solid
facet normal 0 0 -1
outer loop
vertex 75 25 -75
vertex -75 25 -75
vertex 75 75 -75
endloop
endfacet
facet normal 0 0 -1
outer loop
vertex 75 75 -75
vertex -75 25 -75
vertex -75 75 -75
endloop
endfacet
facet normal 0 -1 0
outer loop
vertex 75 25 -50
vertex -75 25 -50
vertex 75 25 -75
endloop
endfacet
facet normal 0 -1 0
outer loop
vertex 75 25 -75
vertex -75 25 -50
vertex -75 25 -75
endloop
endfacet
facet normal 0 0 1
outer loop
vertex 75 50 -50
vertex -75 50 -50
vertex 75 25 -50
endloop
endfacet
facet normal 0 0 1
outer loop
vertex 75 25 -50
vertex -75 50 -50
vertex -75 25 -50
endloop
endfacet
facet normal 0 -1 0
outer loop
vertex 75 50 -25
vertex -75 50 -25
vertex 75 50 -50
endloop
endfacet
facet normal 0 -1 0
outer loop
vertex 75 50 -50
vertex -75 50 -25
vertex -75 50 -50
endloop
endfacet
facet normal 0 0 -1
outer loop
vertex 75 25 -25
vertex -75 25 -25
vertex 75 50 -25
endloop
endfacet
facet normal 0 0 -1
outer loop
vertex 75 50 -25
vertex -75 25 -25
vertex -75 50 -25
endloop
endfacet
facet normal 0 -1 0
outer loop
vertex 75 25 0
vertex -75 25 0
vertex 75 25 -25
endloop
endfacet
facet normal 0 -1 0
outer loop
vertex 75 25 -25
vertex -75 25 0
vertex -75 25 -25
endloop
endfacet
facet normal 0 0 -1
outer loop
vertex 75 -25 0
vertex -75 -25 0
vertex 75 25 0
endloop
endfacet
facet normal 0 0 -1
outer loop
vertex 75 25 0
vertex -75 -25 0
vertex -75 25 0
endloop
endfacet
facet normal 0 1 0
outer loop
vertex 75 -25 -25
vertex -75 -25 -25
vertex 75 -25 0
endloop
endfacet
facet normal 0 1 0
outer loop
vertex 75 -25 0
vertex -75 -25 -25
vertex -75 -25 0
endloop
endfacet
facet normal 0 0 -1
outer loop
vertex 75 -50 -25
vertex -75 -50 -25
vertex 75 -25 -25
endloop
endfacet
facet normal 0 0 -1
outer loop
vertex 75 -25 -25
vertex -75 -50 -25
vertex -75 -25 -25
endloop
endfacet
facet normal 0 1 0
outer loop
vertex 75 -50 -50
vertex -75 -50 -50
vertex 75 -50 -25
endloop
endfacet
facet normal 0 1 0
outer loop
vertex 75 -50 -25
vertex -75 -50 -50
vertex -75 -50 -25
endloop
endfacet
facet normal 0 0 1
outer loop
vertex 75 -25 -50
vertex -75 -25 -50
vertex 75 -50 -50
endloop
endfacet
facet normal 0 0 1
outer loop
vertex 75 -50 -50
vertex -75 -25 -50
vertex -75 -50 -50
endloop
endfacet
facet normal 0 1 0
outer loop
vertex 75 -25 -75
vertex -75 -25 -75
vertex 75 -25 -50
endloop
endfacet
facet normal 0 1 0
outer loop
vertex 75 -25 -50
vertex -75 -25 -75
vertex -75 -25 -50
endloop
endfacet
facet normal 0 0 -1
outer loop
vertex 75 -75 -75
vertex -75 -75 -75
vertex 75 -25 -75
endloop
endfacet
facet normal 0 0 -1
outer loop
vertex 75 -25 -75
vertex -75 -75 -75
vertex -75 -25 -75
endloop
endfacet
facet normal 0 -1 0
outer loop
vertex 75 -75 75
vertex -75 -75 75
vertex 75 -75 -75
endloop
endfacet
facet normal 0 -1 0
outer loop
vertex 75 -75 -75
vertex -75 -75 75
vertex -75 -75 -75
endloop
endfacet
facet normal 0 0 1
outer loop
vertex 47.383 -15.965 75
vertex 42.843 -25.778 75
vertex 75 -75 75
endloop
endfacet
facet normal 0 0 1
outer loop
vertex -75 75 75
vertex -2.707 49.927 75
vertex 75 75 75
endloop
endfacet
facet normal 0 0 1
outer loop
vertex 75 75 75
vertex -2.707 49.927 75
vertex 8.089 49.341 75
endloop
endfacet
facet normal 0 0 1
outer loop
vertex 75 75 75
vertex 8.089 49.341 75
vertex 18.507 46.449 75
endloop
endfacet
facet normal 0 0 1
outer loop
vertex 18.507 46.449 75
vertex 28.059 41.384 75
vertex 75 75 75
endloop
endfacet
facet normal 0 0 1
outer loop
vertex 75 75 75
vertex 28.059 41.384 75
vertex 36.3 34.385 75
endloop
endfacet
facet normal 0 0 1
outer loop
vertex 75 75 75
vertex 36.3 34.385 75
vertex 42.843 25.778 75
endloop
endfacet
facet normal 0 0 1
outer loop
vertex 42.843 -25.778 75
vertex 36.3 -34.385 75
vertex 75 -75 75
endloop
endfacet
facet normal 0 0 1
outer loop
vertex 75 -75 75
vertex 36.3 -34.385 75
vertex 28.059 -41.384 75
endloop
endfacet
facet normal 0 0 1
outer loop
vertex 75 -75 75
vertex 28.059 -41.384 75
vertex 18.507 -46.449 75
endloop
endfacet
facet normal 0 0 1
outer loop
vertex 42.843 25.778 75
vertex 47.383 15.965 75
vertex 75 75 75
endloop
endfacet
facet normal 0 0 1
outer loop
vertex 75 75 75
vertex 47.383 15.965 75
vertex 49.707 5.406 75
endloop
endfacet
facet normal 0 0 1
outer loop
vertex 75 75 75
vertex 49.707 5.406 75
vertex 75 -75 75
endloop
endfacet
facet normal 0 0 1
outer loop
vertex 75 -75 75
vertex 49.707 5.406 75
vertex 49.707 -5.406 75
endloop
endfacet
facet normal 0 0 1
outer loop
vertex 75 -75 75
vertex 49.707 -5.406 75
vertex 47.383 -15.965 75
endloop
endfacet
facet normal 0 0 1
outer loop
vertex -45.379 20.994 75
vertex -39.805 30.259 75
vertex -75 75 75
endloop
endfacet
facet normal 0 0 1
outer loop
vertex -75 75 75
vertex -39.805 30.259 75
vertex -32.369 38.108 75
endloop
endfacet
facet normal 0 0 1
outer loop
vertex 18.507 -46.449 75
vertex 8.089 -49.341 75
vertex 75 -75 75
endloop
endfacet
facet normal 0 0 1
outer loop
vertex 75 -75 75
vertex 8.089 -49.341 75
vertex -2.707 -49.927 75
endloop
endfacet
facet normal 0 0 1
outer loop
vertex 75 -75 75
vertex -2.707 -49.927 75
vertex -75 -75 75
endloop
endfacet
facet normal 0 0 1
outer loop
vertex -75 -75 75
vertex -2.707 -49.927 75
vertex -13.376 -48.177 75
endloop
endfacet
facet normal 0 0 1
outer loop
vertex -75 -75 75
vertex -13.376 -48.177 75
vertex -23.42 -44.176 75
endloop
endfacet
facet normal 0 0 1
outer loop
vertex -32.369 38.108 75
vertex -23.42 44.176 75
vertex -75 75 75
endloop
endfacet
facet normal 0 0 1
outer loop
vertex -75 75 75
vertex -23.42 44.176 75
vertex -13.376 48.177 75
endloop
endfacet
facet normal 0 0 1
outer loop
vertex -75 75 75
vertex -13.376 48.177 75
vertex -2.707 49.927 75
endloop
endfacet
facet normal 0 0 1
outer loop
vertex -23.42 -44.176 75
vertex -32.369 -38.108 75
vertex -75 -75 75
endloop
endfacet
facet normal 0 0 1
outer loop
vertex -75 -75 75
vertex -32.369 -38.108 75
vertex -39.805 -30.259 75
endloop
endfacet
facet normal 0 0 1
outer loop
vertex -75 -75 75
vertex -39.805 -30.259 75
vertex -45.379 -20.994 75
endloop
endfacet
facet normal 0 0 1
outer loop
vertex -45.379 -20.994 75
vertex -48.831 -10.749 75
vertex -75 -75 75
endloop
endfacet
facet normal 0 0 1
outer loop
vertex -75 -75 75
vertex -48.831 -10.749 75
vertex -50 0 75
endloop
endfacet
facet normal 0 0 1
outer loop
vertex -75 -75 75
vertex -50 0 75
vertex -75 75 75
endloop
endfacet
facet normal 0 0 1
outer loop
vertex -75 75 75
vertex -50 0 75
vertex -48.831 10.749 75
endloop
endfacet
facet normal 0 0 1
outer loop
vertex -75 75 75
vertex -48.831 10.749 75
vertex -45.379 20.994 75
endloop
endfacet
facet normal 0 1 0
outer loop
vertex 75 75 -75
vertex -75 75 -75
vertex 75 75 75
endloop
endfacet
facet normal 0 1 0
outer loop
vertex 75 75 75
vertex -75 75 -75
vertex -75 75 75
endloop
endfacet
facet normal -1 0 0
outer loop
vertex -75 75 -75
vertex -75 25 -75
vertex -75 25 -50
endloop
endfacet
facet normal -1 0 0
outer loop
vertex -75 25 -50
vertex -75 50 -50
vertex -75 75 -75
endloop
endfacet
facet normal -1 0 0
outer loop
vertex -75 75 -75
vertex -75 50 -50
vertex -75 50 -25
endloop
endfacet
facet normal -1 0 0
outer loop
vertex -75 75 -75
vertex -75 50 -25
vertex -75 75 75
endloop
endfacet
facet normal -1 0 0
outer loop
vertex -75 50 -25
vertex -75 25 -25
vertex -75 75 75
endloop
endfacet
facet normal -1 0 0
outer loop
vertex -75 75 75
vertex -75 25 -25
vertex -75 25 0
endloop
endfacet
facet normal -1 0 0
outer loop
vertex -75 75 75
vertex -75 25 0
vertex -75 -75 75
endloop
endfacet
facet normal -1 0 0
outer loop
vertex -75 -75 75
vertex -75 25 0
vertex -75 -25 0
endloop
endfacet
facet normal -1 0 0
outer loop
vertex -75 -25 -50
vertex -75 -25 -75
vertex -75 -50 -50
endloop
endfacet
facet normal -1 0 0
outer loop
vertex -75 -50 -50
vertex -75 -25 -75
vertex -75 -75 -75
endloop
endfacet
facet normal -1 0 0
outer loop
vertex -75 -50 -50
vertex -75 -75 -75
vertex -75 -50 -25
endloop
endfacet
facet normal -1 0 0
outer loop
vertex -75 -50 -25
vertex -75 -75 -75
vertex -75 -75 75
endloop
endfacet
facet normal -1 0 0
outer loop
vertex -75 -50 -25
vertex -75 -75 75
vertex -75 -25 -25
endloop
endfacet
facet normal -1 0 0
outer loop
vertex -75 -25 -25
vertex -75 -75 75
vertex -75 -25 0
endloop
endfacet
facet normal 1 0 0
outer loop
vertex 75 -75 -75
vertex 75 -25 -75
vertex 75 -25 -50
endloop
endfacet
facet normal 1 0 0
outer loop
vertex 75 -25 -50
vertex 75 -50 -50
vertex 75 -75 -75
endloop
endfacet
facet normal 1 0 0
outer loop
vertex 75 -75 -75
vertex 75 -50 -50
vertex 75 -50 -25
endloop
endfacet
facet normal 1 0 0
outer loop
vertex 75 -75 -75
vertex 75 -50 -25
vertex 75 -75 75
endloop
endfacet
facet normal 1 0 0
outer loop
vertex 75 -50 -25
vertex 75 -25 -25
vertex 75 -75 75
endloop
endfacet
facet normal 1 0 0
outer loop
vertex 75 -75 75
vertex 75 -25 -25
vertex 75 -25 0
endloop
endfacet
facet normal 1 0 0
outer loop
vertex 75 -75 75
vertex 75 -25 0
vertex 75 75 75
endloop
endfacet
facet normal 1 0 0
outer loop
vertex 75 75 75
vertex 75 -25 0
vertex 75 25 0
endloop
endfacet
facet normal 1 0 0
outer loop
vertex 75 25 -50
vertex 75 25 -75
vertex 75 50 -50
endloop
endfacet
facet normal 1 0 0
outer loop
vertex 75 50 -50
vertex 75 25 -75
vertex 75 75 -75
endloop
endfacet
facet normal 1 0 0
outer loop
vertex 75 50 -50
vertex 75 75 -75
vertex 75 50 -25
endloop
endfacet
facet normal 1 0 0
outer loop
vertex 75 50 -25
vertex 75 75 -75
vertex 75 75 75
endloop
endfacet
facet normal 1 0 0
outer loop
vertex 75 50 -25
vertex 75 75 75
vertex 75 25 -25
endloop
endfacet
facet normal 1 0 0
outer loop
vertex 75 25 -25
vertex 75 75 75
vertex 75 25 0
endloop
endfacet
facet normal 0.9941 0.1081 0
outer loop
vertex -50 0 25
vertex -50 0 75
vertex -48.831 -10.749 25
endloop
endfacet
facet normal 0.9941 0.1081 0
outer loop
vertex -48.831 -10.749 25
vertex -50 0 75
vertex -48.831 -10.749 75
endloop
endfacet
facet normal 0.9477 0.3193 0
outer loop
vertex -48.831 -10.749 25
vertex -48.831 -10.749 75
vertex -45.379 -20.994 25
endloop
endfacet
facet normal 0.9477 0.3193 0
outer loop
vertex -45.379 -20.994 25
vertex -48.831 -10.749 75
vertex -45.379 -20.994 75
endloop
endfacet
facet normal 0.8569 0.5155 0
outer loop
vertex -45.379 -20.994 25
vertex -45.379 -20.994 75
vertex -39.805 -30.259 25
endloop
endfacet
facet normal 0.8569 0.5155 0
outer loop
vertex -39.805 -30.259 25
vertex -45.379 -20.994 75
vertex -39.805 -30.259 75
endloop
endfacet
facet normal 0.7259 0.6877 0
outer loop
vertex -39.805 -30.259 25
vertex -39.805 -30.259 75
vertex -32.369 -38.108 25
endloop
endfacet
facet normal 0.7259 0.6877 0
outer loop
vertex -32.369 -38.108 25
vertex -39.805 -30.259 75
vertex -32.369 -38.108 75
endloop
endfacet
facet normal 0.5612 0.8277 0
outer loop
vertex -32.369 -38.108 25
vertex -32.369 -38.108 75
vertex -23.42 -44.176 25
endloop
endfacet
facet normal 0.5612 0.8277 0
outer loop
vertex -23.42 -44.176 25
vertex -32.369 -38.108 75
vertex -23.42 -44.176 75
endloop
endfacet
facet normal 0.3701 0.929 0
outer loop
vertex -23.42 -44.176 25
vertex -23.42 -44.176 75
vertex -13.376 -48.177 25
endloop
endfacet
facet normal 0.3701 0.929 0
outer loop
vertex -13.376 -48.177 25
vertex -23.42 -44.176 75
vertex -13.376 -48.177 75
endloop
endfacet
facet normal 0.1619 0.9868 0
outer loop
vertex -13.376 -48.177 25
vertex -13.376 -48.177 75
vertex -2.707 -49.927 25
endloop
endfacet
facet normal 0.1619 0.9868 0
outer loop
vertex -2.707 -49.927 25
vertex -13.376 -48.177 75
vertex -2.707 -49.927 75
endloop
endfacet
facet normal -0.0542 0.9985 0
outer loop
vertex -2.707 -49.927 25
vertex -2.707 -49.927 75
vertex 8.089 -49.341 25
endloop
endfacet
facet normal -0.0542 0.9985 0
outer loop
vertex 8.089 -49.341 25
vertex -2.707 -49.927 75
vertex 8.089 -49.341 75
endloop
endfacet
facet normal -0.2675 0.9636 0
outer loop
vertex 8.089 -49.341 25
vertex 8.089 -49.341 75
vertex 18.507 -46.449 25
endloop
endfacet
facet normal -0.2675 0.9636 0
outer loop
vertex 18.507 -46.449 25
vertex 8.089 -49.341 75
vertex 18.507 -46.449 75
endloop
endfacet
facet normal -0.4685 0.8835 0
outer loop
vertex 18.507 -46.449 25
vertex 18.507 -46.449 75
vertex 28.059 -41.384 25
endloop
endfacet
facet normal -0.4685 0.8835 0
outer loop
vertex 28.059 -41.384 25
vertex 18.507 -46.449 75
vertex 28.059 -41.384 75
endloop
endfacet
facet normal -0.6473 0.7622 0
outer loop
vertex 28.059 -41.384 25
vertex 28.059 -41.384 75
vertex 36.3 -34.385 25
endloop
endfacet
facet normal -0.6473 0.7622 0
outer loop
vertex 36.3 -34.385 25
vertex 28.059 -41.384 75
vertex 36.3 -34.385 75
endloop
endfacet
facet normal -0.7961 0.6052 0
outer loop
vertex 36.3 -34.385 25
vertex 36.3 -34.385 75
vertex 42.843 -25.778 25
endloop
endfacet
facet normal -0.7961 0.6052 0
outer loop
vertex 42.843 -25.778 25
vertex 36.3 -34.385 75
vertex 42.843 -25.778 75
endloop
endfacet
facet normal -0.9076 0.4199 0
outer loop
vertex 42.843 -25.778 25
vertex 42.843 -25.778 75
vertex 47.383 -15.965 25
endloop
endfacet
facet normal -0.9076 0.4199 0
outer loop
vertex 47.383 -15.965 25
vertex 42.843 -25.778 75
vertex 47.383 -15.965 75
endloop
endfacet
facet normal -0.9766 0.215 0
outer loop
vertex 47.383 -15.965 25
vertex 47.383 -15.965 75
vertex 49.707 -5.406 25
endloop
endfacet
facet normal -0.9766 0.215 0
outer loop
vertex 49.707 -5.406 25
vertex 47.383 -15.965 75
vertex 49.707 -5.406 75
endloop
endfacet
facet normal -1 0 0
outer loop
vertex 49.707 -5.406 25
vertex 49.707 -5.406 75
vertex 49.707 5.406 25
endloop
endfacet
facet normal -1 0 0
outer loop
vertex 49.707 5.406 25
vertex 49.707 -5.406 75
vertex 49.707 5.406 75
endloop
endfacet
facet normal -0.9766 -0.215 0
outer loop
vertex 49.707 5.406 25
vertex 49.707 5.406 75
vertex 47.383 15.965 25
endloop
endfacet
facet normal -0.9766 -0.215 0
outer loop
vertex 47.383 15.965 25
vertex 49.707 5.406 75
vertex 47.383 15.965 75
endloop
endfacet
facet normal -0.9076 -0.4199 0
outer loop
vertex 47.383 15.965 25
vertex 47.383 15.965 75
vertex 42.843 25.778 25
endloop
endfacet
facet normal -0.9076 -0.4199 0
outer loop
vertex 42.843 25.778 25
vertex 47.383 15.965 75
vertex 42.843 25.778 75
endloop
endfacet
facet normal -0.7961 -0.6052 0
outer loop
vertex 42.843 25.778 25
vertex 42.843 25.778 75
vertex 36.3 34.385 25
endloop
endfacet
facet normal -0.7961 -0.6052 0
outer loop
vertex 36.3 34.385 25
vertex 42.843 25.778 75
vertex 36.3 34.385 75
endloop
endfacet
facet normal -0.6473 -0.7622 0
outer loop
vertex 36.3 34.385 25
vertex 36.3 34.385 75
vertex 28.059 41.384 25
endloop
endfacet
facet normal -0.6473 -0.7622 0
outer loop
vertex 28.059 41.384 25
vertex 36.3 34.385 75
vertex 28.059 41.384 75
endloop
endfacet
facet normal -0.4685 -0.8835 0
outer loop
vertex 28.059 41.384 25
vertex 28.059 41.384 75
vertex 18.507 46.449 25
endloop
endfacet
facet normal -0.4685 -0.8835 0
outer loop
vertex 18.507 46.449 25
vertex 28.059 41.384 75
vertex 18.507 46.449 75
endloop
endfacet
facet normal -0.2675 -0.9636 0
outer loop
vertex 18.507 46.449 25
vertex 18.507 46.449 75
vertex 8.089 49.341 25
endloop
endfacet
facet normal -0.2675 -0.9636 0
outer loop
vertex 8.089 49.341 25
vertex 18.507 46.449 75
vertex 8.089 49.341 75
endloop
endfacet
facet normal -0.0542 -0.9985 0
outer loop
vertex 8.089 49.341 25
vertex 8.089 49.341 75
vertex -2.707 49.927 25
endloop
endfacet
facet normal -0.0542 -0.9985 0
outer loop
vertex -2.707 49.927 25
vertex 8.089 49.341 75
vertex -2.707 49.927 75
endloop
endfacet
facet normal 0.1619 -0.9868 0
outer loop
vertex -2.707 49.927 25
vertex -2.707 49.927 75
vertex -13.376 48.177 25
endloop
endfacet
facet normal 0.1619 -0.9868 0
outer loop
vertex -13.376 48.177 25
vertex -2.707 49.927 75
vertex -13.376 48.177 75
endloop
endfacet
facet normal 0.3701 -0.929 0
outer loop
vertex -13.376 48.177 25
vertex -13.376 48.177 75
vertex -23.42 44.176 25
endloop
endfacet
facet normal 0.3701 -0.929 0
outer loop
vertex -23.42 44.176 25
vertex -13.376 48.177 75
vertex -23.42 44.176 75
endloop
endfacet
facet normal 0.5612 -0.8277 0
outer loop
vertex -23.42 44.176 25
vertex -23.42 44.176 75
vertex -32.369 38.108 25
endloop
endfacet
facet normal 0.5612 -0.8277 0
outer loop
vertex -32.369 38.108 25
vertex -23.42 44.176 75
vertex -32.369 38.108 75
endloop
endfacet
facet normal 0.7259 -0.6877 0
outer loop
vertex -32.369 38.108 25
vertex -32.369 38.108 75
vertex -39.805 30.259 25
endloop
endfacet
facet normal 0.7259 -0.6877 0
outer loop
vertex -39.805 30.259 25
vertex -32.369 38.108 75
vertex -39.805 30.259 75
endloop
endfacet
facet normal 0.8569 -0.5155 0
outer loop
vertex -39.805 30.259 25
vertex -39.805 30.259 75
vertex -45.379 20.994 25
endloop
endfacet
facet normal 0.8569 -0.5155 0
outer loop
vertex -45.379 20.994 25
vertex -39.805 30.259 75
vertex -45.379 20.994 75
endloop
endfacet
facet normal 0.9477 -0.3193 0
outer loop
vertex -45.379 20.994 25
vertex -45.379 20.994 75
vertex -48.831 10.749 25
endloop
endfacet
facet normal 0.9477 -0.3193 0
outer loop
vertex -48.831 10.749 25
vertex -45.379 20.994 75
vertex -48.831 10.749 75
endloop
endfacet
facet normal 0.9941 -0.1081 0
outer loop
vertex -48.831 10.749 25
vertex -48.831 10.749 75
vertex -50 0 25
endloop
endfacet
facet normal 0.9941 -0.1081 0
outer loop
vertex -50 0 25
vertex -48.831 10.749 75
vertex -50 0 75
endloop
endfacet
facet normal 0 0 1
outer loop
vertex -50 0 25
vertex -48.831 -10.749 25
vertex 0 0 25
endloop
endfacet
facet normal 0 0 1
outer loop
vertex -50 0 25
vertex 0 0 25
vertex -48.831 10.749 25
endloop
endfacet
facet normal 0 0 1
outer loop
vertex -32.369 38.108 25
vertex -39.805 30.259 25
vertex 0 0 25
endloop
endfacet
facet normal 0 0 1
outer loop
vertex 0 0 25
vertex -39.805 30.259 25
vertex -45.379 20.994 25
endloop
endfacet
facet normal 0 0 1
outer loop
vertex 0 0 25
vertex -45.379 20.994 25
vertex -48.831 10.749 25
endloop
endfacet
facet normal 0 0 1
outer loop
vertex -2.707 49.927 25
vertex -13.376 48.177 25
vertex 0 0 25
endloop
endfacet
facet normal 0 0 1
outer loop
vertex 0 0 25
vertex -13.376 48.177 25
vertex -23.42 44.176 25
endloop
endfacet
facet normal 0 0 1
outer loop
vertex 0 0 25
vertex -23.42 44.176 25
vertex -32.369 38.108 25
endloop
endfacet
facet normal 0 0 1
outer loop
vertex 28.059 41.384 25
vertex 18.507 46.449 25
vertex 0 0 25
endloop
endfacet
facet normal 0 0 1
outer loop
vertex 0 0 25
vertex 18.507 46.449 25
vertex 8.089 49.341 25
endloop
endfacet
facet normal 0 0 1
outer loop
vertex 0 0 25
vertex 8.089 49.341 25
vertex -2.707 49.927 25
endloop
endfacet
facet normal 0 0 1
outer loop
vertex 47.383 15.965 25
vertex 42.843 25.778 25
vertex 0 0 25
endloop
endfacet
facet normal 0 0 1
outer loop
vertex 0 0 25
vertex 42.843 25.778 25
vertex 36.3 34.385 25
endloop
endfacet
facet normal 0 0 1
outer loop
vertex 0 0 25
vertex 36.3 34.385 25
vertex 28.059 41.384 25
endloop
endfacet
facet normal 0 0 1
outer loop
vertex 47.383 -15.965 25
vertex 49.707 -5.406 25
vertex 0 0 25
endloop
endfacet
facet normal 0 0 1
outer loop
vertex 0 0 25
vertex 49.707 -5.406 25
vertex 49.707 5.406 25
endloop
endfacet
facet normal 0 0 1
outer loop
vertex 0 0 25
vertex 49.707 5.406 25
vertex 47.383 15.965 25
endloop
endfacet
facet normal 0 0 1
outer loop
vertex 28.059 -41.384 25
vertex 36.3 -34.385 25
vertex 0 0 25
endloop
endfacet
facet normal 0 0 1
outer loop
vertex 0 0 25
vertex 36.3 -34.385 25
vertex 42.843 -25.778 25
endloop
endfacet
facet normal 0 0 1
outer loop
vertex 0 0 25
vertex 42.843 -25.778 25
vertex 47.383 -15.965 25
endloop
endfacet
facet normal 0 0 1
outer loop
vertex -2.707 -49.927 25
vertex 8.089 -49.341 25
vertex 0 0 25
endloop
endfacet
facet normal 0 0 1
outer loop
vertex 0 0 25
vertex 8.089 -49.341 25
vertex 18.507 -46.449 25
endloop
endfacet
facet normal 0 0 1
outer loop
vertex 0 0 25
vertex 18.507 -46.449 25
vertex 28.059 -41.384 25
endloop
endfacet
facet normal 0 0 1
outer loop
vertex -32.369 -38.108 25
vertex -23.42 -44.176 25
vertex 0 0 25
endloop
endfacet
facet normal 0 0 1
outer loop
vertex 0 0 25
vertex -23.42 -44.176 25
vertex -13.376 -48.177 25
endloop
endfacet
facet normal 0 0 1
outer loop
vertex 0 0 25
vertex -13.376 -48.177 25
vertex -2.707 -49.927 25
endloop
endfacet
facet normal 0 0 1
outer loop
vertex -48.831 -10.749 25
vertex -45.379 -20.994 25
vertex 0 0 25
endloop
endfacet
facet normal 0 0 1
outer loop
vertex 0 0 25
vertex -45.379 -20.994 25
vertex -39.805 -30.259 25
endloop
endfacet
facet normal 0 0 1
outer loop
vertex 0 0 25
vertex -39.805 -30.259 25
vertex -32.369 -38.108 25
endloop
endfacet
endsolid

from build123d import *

# Parameters (mm, degrees)
BOSS_EXTRUDE1_DEPTH      = 75
BOSS_EXTRUDE1_DEPTH_BACK = 75
SKETCH4_R                = 50
CUT_EXTRUDE1_DEPTH       = 50


with BuildPart() as part:
    # Sketch2 → Boss-Extrude1 (new, two sides: drawn at the far end of the back side and taken through both)
    with BuildSketch(Plane(origin=(0, 0, 0), x_dir=(0, 0, -1), z_dir=(1, 0, 0)).offset(-BOSS_EXTRUDE1_DEPTH_BACK)):
        Polygon((75, 25), (50, 25), (50, 50), (25, 50), (25, 25), (0, 25), (0, -25), (25, -25), (25, -50), (50, -50), (50, -25), (75, -25), (75, -75), (-75, -75), (-75, 75), (75, 75), align=None)
    extrude(amount=BOSS_EXTRUDE1_DEPTH + BOSS_EXTRUDE1_DEPTH_BACK)

    # Sketch4 → Cut-Extrude1 (cut)
    with BuildSketch(Plane.XY.offset(75)):
        Circle(SKETCH4_R)
    extrude(amount=-CUT_EXTRUDE1_DEPTH, mode=Mode.SUBTRACT)


solid = part.part
